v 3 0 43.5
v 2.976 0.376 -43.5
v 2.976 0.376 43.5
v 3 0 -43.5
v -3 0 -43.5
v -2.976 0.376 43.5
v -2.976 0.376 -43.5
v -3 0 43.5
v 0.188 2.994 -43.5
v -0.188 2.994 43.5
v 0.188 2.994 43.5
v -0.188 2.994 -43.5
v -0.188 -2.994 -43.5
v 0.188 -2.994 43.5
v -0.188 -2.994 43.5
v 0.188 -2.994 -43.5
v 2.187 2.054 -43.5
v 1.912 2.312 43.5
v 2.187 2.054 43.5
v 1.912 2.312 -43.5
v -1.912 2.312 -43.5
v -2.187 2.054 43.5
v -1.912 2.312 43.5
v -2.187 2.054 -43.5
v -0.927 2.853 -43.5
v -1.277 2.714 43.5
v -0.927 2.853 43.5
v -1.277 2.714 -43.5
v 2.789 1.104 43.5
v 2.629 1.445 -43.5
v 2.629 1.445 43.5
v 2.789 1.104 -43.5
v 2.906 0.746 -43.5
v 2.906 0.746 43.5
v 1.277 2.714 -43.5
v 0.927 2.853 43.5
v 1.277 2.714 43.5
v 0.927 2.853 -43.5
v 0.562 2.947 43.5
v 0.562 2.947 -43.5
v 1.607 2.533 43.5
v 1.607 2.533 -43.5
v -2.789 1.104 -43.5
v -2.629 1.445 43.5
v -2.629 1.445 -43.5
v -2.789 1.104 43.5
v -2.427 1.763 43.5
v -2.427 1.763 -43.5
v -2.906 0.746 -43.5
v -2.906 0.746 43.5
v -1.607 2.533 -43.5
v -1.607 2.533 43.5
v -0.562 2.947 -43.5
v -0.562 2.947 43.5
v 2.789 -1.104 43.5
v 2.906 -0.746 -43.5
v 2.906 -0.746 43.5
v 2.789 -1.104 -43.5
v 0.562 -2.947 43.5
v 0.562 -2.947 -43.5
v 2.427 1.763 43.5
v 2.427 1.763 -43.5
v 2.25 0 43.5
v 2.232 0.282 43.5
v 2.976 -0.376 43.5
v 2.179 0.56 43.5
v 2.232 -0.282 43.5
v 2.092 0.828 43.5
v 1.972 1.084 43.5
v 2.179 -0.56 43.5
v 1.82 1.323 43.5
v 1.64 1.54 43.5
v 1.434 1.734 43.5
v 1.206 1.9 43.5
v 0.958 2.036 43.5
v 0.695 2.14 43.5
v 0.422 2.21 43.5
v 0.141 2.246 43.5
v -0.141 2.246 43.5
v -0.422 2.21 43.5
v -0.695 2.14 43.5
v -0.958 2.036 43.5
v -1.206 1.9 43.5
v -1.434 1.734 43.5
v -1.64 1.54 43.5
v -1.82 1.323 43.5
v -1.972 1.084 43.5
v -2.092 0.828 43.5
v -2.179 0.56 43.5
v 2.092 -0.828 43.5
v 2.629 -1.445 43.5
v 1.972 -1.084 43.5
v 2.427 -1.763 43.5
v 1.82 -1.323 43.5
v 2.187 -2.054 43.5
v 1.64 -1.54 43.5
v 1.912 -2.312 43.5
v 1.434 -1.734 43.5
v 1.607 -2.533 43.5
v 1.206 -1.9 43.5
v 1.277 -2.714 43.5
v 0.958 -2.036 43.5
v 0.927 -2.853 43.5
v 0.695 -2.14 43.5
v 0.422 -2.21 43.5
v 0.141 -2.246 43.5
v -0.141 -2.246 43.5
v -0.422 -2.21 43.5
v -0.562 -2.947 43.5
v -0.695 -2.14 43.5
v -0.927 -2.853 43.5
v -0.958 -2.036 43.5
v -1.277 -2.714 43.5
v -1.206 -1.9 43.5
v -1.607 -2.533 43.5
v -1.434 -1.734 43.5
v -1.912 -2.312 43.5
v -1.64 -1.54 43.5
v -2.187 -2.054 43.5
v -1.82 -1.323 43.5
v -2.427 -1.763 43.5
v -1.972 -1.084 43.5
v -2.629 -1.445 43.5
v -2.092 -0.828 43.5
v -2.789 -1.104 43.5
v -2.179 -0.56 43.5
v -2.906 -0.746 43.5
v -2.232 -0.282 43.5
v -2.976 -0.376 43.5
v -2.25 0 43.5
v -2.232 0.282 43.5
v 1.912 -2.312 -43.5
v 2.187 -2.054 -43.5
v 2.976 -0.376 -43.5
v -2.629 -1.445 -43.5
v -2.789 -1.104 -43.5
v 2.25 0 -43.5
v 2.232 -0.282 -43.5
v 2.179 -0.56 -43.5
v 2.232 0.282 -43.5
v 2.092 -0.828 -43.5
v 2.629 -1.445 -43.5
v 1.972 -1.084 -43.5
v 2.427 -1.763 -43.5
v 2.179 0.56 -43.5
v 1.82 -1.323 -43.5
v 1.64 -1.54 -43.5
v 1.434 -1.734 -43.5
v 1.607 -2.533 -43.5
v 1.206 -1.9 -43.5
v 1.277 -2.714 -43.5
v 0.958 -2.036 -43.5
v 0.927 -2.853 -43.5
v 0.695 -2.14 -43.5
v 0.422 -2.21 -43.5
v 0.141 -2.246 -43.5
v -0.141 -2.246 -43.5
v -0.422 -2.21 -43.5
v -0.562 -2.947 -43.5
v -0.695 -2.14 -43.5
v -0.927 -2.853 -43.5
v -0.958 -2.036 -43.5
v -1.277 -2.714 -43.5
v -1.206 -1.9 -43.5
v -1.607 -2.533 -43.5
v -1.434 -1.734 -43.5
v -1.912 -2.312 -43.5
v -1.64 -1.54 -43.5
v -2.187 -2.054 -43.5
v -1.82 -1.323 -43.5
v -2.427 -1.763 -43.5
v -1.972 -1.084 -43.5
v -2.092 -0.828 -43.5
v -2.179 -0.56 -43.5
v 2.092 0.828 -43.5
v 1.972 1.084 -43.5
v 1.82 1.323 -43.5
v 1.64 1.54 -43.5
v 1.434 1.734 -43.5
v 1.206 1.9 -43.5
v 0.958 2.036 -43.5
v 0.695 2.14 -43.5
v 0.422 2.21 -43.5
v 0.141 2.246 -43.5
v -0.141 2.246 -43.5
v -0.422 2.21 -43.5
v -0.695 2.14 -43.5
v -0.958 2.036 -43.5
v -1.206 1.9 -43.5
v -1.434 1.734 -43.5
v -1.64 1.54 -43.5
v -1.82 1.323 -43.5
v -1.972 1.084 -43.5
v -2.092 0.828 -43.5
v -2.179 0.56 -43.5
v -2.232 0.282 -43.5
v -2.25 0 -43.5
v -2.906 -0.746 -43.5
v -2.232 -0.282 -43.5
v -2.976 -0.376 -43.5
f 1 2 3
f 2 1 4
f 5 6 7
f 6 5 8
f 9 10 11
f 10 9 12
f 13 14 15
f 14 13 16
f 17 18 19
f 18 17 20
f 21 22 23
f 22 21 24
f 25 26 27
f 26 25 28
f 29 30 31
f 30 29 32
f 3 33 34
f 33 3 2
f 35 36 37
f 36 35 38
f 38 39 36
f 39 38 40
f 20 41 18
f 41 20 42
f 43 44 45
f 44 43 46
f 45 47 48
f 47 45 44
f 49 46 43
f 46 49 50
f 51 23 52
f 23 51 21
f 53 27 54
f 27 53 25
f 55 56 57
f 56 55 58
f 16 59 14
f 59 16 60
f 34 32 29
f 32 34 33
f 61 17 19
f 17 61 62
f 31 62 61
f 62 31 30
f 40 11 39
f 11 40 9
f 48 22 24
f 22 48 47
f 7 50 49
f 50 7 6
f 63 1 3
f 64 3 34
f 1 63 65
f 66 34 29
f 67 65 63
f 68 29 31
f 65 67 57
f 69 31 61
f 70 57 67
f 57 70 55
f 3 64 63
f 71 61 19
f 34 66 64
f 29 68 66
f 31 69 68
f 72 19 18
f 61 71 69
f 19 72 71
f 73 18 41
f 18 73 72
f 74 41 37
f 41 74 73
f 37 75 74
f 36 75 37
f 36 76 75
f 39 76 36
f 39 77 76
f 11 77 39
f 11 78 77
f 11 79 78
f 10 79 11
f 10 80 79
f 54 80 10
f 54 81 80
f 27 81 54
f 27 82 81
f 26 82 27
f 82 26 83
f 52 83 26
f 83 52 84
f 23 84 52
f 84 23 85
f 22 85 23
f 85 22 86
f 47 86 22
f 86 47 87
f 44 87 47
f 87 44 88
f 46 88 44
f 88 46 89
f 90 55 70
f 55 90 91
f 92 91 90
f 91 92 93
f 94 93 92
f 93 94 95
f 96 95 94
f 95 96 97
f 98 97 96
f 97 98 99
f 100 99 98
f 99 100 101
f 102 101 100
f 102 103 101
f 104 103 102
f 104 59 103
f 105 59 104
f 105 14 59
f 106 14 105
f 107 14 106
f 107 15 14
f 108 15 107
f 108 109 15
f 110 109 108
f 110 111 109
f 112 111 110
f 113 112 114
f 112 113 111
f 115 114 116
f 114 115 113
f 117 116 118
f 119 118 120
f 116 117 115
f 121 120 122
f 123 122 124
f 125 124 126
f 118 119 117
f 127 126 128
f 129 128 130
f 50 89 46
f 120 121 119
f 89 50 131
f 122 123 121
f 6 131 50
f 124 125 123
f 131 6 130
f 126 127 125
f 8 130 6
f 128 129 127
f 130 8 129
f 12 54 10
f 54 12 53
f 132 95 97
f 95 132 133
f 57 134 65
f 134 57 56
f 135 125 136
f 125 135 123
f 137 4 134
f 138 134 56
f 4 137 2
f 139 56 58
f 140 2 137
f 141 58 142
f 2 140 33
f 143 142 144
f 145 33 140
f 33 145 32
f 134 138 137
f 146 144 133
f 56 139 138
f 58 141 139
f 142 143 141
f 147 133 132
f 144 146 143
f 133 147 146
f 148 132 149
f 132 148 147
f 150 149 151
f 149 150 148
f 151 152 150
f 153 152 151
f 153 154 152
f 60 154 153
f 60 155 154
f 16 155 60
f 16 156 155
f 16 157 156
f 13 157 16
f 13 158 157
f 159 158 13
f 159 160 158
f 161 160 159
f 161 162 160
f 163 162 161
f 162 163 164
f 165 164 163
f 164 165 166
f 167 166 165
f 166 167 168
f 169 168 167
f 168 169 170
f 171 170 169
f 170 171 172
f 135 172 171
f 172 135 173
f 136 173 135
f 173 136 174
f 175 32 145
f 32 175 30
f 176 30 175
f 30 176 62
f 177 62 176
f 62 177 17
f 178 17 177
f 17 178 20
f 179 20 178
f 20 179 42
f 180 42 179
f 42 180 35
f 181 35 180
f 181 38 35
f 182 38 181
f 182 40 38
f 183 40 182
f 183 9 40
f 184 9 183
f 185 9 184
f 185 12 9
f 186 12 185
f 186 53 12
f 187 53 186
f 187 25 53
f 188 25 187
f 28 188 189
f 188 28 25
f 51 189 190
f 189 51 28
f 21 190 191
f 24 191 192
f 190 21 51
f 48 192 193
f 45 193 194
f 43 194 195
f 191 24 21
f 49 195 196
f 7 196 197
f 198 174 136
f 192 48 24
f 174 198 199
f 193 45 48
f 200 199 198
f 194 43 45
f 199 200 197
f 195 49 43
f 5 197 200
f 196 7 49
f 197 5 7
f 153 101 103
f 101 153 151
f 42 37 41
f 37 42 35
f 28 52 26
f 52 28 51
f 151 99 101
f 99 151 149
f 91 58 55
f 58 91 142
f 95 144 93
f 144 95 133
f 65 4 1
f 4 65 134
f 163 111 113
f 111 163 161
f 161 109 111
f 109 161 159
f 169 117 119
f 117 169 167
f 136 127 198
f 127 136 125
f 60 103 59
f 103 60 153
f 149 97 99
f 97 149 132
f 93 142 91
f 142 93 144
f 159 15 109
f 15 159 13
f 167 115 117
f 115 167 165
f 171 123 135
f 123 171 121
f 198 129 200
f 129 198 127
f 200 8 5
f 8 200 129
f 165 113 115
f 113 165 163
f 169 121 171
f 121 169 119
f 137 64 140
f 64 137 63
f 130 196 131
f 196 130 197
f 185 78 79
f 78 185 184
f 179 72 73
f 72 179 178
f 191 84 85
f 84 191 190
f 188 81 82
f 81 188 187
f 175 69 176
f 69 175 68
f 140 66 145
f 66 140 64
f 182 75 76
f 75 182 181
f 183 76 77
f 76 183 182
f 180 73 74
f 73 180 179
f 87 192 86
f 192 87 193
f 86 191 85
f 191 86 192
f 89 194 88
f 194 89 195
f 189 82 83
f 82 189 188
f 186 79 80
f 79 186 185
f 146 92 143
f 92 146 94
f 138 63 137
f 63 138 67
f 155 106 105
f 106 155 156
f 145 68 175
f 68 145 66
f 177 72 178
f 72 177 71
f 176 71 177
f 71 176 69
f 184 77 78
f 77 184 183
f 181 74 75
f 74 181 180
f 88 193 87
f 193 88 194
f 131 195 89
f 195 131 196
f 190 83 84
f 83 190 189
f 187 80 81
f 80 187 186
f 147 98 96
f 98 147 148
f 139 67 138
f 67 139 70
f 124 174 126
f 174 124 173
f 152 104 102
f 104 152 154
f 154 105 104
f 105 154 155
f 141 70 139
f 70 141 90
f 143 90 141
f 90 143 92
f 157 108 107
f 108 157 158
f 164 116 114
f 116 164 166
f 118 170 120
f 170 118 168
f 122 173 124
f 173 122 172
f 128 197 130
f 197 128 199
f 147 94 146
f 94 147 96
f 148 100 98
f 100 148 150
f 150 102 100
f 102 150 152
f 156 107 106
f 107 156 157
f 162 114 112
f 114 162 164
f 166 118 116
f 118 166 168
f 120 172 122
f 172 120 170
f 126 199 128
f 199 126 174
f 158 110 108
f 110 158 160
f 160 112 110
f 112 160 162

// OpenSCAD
$fn = 50;


difference() {
	union() {
		translate(v = [0, 0, -43.5000000000]) {
			cylinder(h = 87, r = 3.0000000000);
		}
	}
	union() {
		translate(v = [0, 0, -100.0000000000]) {
			cylinder(h = 200, r = 2.2500000000);
		}
	}
}
